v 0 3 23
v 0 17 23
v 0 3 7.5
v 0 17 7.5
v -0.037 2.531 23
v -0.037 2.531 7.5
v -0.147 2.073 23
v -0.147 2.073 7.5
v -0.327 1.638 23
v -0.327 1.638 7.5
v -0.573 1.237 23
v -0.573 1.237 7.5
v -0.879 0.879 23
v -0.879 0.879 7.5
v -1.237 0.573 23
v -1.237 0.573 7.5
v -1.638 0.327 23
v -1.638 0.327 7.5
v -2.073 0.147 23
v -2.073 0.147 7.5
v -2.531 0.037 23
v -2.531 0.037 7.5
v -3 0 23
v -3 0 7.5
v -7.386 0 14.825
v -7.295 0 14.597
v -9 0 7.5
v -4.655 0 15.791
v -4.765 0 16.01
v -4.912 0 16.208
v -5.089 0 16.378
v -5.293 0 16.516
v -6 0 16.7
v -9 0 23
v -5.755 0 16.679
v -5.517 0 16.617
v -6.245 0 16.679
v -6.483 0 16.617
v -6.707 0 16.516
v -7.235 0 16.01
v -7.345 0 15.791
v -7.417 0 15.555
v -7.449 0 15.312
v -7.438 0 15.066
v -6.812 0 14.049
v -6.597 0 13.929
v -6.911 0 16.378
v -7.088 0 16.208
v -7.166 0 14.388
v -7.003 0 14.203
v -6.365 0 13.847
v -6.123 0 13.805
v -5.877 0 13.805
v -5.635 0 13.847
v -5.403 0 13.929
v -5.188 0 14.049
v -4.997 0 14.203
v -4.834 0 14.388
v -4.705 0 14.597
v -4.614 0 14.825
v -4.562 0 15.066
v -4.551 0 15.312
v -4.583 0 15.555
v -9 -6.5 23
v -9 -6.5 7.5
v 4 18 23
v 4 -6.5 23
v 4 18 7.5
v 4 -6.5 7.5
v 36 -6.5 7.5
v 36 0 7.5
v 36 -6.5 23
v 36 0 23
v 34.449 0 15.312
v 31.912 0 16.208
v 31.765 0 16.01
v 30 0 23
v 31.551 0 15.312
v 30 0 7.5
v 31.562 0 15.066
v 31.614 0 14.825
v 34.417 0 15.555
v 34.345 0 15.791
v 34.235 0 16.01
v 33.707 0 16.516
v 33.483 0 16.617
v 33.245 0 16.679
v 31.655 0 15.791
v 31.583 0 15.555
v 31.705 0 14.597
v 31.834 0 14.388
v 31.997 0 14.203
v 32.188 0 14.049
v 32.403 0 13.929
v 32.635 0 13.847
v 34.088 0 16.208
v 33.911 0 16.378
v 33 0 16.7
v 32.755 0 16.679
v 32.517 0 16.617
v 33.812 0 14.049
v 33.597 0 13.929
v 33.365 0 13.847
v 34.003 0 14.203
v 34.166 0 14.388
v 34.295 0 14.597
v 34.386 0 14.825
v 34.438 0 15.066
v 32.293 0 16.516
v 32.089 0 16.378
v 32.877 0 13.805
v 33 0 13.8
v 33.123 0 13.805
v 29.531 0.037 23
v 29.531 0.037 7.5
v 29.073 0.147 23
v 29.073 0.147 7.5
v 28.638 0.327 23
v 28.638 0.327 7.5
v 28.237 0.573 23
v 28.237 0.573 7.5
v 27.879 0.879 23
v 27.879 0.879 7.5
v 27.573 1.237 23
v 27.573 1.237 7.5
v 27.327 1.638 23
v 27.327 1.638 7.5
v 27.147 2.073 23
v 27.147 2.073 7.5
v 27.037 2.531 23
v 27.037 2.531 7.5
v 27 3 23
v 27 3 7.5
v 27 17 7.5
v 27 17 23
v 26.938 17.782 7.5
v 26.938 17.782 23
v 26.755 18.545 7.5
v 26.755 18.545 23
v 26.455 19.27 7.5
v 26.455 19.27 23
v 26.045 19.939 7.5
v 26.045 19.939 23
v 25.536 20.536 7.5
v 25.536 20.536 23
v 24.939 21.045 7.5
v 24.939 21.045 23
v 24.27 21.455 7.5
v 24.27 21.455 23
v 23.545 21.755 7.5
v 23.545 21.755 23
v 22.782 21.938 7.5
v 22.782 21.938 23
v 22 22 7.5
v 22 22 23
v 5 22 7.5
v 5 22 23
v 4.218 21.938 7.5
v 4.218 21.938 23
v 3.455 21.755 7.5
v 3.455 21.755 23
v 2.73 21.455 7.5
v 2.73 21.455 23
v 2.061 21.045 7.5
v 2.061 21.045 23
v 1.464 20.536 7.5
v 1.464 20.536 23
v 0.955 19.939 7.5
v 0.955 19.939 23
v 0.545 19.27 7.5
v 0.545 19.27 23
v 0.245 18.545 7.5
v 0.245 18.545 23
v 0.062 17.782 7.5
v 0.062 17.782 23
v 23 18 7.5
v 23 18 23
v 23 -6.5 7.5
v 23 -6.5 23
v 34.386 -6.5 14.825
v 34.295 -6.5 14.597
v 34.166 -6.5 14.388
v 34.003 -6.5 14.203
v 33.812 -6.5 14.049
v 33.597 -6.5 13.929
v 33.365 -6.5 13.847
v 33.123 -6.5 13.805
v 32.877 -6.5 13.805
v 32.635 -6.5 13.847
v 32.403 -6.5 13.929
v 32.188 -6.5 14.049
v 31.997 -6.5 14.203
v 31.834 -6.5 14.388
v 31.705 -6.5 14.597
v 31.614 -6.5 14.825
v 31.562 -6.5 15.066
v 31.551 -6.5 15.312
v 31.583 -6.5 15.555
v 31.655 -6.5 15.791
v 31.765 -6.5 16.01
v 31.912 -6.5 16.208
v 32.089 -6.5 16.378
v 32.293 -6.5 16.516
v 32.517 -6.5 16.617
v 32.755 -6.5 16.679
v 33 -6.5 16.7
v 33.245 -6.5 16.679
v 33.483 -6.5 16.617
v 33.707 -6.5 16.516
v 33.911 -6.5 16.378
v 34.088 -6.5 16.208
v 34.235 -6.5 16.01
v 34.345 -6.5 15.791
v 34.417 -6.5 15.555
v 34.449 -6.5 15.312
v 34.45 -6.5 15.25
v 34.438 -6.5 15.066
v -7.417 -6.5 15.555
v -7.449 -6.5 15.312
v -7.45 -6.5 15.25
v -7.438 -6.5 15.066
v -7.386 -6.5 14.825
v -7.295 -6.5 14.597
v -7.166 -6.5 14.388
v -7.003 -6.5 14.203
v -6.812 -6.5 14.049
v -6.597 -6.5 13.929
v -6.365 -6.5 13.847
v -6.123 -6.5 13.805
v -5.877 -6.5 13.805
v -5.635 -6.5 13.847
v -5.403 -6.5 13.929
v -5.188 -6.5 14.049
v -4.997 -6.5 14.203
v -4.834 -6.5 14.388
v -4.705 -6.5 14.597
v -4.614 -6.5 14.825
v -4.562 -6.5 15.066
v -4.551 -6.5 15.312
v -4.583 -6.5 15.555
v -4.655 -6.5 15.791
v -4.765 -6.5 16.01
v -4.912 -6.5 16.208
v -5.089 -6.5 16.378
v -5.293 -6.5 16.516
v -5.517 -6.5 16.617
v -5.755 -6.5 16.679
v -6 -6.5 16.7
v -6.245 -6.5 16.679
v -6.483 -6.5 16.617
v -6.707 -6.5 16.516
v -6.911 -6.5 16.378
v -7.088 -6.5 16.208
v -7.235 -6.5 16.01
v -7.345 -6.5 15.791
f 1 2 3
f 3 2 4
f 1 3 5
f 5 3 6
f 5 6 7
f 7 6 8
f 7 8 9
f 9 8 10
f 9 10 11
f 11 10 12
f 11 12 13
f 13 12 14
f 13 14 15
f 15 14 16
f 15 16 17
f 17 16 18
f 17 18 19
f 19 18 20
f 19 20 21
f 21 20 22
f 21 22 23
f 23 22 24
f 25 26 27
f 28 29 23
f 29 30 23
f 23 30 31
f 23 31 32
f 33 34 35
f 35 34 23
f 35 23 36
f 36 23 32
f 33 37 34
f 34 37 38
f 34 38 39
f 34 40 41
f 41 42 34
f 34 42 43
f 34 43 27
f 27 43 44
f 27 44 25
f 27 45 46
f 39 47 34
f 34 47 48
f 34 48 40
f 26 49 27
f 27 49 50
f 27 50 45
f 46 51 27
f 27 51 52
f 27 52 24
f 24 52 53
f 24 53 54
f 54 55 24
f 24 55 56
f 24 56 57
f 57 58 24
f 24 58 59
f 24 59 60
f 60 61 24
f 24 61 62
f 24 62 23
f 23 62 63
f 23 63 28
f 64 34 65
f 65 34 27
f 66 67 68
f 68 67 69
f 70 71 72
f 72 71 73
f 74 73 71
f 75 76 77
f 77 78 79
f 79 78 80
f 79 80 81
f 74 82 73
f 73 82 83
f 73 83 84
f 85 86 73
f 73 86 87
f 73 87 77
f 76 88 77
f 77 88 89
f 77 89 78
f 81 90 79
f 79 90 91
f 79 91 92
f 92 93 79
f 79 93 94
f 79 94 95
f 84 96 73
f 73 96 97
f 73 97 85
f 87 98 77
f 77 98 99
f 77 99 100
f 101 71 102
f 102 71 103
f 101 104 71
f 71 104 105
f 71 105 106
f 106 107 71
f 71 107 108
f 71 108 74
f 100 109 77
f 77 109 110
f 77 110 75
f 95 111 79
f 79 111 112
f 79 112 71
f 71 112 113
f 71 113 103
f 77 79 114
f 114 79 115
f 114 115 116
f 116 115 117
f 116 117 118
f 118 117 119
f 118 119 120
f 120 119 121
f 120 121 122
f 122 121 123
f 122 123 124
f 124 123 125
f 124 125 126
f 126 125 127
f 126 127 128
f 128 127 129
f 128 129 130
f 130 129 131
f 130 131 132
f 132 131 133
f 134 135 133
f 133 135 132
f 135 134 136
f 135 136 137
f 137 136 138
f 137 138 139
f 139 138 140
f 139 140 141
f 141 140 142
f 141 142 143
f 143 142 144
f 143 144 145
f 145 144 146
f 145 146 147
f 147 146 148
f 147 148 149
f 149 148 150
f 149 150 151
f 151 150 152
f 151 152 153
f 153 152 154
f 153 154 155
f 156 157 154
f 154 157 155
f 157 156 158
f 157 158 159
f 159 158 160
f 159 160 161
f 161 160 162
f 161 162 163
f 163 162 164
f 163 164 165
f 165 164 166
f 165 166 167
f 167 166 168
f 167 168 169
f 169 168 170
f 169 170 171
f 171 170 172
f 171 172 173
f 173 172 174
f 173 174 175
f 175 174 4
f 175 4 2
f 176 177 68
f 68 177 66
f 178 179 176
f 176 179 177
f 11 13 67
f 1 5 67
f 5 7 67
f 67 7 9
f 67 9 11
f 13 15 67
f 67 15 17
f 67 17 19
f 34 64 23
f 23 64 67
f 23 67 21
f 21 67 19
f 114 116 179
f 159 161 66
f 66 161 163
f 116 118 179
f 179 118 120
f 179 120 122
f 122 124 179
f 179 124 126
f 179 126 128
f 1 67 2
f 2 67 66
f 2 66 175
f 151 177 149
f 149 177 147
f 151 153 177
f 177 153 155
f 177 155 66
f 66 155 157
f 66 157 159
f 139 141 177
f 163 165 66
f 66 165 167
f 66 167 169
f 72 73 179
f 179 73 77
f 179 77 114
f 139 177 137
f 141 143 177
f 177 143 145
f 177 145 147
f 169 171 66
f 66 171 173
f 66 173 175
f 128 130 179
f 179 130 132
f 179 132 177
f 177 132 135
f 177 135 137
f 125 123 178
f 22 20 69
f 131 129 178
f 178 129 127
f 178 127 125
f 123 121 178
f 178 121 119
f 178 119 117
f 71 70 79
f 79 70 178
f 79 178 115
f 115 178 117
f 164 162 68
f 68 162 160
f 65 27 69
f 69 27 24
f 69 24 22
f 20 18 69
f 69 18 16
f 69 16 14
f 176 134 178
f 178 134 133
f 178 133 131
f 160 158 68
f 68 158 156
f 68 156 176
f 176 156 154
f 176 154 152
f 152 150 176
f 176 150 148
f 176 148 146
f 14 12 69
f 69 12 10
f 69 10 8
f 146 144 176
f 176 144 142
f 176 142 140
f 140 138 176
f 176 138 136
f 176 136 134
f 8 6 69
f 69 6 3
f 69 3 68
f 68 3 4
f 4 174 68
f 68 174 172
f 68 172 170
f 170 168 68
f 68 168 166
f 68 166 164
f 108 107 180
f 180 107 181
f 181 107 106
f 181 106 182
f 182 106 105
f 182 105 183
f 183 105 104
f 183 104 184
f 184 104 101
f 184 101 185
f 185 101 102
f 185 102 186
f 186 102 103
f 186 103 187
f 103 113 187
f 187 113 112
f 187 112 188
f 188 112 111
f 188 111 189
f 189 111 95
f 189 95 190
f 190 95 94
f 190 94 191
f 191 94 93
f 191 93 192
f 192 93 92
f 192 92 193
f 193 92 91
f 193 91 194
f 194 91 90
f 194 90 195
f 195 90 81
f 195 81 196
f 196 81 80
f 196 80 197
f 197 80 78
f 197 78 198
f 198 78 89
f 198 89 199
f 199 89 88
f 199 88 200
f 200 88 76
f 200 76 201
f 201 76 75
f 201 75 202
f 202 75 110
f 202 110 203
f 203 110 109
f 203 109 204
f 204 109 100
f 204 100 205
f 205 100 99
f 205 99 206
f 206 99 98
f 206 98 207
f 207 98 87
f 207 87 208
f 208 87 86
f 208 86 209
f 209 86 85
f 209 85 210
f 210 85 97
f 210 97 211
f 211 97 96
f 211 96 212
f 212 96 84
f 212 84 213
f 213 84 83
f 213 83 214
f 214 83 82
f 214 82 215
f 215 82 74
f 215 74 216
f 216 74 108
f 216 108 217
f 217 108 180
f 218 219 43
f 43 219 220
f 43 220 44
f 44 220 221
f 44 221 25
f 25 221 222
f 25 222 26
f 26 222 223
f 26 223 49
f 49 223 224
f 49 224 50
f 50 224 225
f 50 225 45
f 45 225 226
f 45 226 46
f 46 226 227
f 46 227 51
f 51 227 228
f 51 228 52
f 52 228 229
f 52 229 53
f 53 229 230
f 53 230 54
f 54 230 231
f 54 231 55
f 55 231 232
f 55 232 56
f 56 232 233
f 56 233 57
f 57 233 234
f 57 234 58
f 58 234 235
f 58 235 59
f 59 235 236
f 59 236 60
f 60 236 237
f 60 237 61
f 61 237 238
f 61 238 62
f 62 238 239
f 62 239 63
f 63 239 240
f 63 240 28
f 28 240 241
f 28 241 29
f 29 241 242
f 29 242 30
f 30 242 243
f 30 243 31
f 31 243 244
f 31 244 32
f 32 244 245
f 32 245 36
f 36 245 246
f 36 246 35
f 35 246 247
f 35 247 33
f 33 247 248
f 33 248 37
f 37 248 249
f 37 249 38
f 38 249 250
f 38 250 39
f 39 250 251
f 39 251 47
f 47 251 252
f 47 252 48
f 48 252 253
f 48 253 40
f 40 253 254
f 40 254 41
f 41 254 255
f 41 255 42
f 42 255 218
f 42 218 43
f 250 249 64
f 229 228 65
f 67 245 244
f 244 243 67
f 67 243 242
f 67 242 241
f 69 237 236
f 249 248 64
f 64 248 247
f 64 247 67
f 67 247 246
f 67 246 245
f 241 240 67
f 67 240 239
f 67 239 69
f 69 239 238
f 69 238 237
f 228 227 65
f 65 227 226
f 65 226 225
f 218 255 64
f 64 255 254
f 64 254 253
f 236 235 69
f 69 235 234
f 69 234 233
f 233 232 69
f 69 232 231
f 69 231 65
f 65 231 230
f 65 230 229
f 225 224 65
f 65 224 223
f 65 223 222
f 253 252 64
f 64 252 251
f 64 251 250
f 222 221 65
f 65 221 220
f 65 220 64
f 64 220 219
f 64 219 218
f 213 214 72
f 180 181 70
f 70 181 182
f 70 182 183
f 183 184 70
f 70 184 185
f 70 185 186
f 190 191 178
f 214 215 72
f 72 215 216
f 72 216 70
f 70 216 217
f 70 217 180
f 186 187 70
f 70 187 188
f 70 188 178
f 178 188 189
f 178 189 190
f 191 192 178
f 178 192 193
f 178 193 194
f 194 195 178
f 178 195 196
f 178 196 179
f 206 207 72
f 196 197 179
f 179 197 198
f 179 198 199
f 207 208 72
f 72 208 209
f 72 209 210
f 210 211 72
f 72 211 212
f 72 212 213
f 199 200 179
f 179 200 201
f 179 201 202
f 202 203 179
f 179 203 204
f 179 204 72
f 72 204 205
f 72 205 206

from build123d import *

# Parameters (mm, degrees)
BOSS_EXTRUDE1_DEPTH     = 23
CUT_EXTRUDE2_DEPTH      = 23
CUT_EXTRUDE2_DEPTH_BACK = 10
SKETCH4_W               = 3.5
SKETCH4_H               = 21
SKETCH5_W               = 45
SKETCH5_H               = 7.5
CUT_EXTRUDE3_DEPTH      = 26
SKETCH7_R               = 1.45
CUT_EXTRUDE4_DEPTH      = 50
SKETCH8_W               = 13
SKETCH8_H               = 15.5
BOSS_EXTRUDE2_DEPTH     = 2.5
SKETCH9_R               = 1.45
CUT_EXTRUDE5_DEPTH      = 10


with BuildPart() as part:
    # Sketch1 → Boss-Extrude1 (new body)
    with BuildSketch(Plane.XY):
        with BuildLine():
            Line((0, 3), (0, 17))
            ThreePointArc((0, 17), (1.464466094, 20.535533906), (5, 22))
            Line((5, 22), (22, 22))
            ThreePointArc((22, 22), (25.535533906, 20.535533906), (27, 17))
            Line((27, 17), (27, 3))
            ThreePointArc((27, 3), (27.878679656, 0.878679656), (30, 0))
            Line((30, 0), (36, 0))
            Line((36, 0), (36, -4))
            Line((36, -4), (23, -4))
            Line((23, -4), (23, 18))
            Line((23, 18), (4, 18))
            Line((4, 18), (4, -4))
            Line((4, -4), (-9, -4))
            Line((-9, -4), (-9, 0))
            Line((-9, 0), (-3, 0))
            ThreePointArc((-3, 0), (-0.878679656, 0.878679656), (0, 3))
        make_face()
    extrude(amount=BOSS_EXTRUDE1_DEPTH)

    # Sketch4 → Cut-Extrude2 (cut, two sides: drawn at the far end of the back side and taken through both)
    with BuildSketch(Plane.ZY.offset(-CUT_EXTRUDE2_DEPTH_BACK)):
        with Locations((5.75, 6.5)):
            Rectangle(SKETCH4_W, SKETCH4_H)
    extrude(amount=CUT_EXTRUDE2_DEPTH + CUT_EXTRUDE2_DEPTH_BACK, mode=Mode.SUBTRACT)

    # Sketch5 → Cut-Extrude3 (cut)
    with BuildSketch(Plane(origin=(0, 22, 0), x_dir=(1, 0, 0), z_dir=(0, 1, 0))):
        with Locations((13.5, -3.75)):
            Rectangle(SKETCH5_W, SKETCH5_H)
    extrude(amount=-CUT_EXTRUDE3_DEPTH, mode=Mode.SUBTRACT)

    # Sketch7 → Cut-Extrude4 (cut)
    with BuildSketch(Plane(origin=(0, 0, 0), x_dir=(1, 0, 0), z_dir=(0, 1, 0))):
        with Locations(Location((-6, -15.25, 0), (0, 0, 270))):
            Circle(SKETCH7_R)
        with Locations(Location((33, -15.25, 0), (0, 0, 180))):
            Circle(SKETCH7_R)
    extrude(amount=-CUT_EXTRUDE4_DEPTH, mode=Mode.SUBTRACT)

    # Sketch8 → Boss-Extrude2 (add)
    with BuildSketch(Plane.XZ.offset(4)):
        with Locations((29.5, 15.25)):
            Rectangle(SKETCH8_W, SKETCH8_H)
        with Locations((-2.5, 15.25)):
            Rectangle(SKETCH8_W, SKETCH8_H)
    extrude(amount=BOSS_EXTRUDE2_DEPTH)

    # Sketch9 → Cut-Extrude5 (cut)
    with BuildSketch(Plane(origin=(0, -4, 0), x_dir=(1, 0, 0), z_dir=(0, 1, 0))):
        with Locations((33, -15.25)):
            Circle(SKETCH9_R)
        with Locations(Location((-6, -15.25, 0), (0, 0, 270))):
            Circle(SKETCH9_R)
    extrude(amount=-CUT_EXTRUDE5_DEPTH, mode=Mode.SUBTRACT)


solid = part.part
